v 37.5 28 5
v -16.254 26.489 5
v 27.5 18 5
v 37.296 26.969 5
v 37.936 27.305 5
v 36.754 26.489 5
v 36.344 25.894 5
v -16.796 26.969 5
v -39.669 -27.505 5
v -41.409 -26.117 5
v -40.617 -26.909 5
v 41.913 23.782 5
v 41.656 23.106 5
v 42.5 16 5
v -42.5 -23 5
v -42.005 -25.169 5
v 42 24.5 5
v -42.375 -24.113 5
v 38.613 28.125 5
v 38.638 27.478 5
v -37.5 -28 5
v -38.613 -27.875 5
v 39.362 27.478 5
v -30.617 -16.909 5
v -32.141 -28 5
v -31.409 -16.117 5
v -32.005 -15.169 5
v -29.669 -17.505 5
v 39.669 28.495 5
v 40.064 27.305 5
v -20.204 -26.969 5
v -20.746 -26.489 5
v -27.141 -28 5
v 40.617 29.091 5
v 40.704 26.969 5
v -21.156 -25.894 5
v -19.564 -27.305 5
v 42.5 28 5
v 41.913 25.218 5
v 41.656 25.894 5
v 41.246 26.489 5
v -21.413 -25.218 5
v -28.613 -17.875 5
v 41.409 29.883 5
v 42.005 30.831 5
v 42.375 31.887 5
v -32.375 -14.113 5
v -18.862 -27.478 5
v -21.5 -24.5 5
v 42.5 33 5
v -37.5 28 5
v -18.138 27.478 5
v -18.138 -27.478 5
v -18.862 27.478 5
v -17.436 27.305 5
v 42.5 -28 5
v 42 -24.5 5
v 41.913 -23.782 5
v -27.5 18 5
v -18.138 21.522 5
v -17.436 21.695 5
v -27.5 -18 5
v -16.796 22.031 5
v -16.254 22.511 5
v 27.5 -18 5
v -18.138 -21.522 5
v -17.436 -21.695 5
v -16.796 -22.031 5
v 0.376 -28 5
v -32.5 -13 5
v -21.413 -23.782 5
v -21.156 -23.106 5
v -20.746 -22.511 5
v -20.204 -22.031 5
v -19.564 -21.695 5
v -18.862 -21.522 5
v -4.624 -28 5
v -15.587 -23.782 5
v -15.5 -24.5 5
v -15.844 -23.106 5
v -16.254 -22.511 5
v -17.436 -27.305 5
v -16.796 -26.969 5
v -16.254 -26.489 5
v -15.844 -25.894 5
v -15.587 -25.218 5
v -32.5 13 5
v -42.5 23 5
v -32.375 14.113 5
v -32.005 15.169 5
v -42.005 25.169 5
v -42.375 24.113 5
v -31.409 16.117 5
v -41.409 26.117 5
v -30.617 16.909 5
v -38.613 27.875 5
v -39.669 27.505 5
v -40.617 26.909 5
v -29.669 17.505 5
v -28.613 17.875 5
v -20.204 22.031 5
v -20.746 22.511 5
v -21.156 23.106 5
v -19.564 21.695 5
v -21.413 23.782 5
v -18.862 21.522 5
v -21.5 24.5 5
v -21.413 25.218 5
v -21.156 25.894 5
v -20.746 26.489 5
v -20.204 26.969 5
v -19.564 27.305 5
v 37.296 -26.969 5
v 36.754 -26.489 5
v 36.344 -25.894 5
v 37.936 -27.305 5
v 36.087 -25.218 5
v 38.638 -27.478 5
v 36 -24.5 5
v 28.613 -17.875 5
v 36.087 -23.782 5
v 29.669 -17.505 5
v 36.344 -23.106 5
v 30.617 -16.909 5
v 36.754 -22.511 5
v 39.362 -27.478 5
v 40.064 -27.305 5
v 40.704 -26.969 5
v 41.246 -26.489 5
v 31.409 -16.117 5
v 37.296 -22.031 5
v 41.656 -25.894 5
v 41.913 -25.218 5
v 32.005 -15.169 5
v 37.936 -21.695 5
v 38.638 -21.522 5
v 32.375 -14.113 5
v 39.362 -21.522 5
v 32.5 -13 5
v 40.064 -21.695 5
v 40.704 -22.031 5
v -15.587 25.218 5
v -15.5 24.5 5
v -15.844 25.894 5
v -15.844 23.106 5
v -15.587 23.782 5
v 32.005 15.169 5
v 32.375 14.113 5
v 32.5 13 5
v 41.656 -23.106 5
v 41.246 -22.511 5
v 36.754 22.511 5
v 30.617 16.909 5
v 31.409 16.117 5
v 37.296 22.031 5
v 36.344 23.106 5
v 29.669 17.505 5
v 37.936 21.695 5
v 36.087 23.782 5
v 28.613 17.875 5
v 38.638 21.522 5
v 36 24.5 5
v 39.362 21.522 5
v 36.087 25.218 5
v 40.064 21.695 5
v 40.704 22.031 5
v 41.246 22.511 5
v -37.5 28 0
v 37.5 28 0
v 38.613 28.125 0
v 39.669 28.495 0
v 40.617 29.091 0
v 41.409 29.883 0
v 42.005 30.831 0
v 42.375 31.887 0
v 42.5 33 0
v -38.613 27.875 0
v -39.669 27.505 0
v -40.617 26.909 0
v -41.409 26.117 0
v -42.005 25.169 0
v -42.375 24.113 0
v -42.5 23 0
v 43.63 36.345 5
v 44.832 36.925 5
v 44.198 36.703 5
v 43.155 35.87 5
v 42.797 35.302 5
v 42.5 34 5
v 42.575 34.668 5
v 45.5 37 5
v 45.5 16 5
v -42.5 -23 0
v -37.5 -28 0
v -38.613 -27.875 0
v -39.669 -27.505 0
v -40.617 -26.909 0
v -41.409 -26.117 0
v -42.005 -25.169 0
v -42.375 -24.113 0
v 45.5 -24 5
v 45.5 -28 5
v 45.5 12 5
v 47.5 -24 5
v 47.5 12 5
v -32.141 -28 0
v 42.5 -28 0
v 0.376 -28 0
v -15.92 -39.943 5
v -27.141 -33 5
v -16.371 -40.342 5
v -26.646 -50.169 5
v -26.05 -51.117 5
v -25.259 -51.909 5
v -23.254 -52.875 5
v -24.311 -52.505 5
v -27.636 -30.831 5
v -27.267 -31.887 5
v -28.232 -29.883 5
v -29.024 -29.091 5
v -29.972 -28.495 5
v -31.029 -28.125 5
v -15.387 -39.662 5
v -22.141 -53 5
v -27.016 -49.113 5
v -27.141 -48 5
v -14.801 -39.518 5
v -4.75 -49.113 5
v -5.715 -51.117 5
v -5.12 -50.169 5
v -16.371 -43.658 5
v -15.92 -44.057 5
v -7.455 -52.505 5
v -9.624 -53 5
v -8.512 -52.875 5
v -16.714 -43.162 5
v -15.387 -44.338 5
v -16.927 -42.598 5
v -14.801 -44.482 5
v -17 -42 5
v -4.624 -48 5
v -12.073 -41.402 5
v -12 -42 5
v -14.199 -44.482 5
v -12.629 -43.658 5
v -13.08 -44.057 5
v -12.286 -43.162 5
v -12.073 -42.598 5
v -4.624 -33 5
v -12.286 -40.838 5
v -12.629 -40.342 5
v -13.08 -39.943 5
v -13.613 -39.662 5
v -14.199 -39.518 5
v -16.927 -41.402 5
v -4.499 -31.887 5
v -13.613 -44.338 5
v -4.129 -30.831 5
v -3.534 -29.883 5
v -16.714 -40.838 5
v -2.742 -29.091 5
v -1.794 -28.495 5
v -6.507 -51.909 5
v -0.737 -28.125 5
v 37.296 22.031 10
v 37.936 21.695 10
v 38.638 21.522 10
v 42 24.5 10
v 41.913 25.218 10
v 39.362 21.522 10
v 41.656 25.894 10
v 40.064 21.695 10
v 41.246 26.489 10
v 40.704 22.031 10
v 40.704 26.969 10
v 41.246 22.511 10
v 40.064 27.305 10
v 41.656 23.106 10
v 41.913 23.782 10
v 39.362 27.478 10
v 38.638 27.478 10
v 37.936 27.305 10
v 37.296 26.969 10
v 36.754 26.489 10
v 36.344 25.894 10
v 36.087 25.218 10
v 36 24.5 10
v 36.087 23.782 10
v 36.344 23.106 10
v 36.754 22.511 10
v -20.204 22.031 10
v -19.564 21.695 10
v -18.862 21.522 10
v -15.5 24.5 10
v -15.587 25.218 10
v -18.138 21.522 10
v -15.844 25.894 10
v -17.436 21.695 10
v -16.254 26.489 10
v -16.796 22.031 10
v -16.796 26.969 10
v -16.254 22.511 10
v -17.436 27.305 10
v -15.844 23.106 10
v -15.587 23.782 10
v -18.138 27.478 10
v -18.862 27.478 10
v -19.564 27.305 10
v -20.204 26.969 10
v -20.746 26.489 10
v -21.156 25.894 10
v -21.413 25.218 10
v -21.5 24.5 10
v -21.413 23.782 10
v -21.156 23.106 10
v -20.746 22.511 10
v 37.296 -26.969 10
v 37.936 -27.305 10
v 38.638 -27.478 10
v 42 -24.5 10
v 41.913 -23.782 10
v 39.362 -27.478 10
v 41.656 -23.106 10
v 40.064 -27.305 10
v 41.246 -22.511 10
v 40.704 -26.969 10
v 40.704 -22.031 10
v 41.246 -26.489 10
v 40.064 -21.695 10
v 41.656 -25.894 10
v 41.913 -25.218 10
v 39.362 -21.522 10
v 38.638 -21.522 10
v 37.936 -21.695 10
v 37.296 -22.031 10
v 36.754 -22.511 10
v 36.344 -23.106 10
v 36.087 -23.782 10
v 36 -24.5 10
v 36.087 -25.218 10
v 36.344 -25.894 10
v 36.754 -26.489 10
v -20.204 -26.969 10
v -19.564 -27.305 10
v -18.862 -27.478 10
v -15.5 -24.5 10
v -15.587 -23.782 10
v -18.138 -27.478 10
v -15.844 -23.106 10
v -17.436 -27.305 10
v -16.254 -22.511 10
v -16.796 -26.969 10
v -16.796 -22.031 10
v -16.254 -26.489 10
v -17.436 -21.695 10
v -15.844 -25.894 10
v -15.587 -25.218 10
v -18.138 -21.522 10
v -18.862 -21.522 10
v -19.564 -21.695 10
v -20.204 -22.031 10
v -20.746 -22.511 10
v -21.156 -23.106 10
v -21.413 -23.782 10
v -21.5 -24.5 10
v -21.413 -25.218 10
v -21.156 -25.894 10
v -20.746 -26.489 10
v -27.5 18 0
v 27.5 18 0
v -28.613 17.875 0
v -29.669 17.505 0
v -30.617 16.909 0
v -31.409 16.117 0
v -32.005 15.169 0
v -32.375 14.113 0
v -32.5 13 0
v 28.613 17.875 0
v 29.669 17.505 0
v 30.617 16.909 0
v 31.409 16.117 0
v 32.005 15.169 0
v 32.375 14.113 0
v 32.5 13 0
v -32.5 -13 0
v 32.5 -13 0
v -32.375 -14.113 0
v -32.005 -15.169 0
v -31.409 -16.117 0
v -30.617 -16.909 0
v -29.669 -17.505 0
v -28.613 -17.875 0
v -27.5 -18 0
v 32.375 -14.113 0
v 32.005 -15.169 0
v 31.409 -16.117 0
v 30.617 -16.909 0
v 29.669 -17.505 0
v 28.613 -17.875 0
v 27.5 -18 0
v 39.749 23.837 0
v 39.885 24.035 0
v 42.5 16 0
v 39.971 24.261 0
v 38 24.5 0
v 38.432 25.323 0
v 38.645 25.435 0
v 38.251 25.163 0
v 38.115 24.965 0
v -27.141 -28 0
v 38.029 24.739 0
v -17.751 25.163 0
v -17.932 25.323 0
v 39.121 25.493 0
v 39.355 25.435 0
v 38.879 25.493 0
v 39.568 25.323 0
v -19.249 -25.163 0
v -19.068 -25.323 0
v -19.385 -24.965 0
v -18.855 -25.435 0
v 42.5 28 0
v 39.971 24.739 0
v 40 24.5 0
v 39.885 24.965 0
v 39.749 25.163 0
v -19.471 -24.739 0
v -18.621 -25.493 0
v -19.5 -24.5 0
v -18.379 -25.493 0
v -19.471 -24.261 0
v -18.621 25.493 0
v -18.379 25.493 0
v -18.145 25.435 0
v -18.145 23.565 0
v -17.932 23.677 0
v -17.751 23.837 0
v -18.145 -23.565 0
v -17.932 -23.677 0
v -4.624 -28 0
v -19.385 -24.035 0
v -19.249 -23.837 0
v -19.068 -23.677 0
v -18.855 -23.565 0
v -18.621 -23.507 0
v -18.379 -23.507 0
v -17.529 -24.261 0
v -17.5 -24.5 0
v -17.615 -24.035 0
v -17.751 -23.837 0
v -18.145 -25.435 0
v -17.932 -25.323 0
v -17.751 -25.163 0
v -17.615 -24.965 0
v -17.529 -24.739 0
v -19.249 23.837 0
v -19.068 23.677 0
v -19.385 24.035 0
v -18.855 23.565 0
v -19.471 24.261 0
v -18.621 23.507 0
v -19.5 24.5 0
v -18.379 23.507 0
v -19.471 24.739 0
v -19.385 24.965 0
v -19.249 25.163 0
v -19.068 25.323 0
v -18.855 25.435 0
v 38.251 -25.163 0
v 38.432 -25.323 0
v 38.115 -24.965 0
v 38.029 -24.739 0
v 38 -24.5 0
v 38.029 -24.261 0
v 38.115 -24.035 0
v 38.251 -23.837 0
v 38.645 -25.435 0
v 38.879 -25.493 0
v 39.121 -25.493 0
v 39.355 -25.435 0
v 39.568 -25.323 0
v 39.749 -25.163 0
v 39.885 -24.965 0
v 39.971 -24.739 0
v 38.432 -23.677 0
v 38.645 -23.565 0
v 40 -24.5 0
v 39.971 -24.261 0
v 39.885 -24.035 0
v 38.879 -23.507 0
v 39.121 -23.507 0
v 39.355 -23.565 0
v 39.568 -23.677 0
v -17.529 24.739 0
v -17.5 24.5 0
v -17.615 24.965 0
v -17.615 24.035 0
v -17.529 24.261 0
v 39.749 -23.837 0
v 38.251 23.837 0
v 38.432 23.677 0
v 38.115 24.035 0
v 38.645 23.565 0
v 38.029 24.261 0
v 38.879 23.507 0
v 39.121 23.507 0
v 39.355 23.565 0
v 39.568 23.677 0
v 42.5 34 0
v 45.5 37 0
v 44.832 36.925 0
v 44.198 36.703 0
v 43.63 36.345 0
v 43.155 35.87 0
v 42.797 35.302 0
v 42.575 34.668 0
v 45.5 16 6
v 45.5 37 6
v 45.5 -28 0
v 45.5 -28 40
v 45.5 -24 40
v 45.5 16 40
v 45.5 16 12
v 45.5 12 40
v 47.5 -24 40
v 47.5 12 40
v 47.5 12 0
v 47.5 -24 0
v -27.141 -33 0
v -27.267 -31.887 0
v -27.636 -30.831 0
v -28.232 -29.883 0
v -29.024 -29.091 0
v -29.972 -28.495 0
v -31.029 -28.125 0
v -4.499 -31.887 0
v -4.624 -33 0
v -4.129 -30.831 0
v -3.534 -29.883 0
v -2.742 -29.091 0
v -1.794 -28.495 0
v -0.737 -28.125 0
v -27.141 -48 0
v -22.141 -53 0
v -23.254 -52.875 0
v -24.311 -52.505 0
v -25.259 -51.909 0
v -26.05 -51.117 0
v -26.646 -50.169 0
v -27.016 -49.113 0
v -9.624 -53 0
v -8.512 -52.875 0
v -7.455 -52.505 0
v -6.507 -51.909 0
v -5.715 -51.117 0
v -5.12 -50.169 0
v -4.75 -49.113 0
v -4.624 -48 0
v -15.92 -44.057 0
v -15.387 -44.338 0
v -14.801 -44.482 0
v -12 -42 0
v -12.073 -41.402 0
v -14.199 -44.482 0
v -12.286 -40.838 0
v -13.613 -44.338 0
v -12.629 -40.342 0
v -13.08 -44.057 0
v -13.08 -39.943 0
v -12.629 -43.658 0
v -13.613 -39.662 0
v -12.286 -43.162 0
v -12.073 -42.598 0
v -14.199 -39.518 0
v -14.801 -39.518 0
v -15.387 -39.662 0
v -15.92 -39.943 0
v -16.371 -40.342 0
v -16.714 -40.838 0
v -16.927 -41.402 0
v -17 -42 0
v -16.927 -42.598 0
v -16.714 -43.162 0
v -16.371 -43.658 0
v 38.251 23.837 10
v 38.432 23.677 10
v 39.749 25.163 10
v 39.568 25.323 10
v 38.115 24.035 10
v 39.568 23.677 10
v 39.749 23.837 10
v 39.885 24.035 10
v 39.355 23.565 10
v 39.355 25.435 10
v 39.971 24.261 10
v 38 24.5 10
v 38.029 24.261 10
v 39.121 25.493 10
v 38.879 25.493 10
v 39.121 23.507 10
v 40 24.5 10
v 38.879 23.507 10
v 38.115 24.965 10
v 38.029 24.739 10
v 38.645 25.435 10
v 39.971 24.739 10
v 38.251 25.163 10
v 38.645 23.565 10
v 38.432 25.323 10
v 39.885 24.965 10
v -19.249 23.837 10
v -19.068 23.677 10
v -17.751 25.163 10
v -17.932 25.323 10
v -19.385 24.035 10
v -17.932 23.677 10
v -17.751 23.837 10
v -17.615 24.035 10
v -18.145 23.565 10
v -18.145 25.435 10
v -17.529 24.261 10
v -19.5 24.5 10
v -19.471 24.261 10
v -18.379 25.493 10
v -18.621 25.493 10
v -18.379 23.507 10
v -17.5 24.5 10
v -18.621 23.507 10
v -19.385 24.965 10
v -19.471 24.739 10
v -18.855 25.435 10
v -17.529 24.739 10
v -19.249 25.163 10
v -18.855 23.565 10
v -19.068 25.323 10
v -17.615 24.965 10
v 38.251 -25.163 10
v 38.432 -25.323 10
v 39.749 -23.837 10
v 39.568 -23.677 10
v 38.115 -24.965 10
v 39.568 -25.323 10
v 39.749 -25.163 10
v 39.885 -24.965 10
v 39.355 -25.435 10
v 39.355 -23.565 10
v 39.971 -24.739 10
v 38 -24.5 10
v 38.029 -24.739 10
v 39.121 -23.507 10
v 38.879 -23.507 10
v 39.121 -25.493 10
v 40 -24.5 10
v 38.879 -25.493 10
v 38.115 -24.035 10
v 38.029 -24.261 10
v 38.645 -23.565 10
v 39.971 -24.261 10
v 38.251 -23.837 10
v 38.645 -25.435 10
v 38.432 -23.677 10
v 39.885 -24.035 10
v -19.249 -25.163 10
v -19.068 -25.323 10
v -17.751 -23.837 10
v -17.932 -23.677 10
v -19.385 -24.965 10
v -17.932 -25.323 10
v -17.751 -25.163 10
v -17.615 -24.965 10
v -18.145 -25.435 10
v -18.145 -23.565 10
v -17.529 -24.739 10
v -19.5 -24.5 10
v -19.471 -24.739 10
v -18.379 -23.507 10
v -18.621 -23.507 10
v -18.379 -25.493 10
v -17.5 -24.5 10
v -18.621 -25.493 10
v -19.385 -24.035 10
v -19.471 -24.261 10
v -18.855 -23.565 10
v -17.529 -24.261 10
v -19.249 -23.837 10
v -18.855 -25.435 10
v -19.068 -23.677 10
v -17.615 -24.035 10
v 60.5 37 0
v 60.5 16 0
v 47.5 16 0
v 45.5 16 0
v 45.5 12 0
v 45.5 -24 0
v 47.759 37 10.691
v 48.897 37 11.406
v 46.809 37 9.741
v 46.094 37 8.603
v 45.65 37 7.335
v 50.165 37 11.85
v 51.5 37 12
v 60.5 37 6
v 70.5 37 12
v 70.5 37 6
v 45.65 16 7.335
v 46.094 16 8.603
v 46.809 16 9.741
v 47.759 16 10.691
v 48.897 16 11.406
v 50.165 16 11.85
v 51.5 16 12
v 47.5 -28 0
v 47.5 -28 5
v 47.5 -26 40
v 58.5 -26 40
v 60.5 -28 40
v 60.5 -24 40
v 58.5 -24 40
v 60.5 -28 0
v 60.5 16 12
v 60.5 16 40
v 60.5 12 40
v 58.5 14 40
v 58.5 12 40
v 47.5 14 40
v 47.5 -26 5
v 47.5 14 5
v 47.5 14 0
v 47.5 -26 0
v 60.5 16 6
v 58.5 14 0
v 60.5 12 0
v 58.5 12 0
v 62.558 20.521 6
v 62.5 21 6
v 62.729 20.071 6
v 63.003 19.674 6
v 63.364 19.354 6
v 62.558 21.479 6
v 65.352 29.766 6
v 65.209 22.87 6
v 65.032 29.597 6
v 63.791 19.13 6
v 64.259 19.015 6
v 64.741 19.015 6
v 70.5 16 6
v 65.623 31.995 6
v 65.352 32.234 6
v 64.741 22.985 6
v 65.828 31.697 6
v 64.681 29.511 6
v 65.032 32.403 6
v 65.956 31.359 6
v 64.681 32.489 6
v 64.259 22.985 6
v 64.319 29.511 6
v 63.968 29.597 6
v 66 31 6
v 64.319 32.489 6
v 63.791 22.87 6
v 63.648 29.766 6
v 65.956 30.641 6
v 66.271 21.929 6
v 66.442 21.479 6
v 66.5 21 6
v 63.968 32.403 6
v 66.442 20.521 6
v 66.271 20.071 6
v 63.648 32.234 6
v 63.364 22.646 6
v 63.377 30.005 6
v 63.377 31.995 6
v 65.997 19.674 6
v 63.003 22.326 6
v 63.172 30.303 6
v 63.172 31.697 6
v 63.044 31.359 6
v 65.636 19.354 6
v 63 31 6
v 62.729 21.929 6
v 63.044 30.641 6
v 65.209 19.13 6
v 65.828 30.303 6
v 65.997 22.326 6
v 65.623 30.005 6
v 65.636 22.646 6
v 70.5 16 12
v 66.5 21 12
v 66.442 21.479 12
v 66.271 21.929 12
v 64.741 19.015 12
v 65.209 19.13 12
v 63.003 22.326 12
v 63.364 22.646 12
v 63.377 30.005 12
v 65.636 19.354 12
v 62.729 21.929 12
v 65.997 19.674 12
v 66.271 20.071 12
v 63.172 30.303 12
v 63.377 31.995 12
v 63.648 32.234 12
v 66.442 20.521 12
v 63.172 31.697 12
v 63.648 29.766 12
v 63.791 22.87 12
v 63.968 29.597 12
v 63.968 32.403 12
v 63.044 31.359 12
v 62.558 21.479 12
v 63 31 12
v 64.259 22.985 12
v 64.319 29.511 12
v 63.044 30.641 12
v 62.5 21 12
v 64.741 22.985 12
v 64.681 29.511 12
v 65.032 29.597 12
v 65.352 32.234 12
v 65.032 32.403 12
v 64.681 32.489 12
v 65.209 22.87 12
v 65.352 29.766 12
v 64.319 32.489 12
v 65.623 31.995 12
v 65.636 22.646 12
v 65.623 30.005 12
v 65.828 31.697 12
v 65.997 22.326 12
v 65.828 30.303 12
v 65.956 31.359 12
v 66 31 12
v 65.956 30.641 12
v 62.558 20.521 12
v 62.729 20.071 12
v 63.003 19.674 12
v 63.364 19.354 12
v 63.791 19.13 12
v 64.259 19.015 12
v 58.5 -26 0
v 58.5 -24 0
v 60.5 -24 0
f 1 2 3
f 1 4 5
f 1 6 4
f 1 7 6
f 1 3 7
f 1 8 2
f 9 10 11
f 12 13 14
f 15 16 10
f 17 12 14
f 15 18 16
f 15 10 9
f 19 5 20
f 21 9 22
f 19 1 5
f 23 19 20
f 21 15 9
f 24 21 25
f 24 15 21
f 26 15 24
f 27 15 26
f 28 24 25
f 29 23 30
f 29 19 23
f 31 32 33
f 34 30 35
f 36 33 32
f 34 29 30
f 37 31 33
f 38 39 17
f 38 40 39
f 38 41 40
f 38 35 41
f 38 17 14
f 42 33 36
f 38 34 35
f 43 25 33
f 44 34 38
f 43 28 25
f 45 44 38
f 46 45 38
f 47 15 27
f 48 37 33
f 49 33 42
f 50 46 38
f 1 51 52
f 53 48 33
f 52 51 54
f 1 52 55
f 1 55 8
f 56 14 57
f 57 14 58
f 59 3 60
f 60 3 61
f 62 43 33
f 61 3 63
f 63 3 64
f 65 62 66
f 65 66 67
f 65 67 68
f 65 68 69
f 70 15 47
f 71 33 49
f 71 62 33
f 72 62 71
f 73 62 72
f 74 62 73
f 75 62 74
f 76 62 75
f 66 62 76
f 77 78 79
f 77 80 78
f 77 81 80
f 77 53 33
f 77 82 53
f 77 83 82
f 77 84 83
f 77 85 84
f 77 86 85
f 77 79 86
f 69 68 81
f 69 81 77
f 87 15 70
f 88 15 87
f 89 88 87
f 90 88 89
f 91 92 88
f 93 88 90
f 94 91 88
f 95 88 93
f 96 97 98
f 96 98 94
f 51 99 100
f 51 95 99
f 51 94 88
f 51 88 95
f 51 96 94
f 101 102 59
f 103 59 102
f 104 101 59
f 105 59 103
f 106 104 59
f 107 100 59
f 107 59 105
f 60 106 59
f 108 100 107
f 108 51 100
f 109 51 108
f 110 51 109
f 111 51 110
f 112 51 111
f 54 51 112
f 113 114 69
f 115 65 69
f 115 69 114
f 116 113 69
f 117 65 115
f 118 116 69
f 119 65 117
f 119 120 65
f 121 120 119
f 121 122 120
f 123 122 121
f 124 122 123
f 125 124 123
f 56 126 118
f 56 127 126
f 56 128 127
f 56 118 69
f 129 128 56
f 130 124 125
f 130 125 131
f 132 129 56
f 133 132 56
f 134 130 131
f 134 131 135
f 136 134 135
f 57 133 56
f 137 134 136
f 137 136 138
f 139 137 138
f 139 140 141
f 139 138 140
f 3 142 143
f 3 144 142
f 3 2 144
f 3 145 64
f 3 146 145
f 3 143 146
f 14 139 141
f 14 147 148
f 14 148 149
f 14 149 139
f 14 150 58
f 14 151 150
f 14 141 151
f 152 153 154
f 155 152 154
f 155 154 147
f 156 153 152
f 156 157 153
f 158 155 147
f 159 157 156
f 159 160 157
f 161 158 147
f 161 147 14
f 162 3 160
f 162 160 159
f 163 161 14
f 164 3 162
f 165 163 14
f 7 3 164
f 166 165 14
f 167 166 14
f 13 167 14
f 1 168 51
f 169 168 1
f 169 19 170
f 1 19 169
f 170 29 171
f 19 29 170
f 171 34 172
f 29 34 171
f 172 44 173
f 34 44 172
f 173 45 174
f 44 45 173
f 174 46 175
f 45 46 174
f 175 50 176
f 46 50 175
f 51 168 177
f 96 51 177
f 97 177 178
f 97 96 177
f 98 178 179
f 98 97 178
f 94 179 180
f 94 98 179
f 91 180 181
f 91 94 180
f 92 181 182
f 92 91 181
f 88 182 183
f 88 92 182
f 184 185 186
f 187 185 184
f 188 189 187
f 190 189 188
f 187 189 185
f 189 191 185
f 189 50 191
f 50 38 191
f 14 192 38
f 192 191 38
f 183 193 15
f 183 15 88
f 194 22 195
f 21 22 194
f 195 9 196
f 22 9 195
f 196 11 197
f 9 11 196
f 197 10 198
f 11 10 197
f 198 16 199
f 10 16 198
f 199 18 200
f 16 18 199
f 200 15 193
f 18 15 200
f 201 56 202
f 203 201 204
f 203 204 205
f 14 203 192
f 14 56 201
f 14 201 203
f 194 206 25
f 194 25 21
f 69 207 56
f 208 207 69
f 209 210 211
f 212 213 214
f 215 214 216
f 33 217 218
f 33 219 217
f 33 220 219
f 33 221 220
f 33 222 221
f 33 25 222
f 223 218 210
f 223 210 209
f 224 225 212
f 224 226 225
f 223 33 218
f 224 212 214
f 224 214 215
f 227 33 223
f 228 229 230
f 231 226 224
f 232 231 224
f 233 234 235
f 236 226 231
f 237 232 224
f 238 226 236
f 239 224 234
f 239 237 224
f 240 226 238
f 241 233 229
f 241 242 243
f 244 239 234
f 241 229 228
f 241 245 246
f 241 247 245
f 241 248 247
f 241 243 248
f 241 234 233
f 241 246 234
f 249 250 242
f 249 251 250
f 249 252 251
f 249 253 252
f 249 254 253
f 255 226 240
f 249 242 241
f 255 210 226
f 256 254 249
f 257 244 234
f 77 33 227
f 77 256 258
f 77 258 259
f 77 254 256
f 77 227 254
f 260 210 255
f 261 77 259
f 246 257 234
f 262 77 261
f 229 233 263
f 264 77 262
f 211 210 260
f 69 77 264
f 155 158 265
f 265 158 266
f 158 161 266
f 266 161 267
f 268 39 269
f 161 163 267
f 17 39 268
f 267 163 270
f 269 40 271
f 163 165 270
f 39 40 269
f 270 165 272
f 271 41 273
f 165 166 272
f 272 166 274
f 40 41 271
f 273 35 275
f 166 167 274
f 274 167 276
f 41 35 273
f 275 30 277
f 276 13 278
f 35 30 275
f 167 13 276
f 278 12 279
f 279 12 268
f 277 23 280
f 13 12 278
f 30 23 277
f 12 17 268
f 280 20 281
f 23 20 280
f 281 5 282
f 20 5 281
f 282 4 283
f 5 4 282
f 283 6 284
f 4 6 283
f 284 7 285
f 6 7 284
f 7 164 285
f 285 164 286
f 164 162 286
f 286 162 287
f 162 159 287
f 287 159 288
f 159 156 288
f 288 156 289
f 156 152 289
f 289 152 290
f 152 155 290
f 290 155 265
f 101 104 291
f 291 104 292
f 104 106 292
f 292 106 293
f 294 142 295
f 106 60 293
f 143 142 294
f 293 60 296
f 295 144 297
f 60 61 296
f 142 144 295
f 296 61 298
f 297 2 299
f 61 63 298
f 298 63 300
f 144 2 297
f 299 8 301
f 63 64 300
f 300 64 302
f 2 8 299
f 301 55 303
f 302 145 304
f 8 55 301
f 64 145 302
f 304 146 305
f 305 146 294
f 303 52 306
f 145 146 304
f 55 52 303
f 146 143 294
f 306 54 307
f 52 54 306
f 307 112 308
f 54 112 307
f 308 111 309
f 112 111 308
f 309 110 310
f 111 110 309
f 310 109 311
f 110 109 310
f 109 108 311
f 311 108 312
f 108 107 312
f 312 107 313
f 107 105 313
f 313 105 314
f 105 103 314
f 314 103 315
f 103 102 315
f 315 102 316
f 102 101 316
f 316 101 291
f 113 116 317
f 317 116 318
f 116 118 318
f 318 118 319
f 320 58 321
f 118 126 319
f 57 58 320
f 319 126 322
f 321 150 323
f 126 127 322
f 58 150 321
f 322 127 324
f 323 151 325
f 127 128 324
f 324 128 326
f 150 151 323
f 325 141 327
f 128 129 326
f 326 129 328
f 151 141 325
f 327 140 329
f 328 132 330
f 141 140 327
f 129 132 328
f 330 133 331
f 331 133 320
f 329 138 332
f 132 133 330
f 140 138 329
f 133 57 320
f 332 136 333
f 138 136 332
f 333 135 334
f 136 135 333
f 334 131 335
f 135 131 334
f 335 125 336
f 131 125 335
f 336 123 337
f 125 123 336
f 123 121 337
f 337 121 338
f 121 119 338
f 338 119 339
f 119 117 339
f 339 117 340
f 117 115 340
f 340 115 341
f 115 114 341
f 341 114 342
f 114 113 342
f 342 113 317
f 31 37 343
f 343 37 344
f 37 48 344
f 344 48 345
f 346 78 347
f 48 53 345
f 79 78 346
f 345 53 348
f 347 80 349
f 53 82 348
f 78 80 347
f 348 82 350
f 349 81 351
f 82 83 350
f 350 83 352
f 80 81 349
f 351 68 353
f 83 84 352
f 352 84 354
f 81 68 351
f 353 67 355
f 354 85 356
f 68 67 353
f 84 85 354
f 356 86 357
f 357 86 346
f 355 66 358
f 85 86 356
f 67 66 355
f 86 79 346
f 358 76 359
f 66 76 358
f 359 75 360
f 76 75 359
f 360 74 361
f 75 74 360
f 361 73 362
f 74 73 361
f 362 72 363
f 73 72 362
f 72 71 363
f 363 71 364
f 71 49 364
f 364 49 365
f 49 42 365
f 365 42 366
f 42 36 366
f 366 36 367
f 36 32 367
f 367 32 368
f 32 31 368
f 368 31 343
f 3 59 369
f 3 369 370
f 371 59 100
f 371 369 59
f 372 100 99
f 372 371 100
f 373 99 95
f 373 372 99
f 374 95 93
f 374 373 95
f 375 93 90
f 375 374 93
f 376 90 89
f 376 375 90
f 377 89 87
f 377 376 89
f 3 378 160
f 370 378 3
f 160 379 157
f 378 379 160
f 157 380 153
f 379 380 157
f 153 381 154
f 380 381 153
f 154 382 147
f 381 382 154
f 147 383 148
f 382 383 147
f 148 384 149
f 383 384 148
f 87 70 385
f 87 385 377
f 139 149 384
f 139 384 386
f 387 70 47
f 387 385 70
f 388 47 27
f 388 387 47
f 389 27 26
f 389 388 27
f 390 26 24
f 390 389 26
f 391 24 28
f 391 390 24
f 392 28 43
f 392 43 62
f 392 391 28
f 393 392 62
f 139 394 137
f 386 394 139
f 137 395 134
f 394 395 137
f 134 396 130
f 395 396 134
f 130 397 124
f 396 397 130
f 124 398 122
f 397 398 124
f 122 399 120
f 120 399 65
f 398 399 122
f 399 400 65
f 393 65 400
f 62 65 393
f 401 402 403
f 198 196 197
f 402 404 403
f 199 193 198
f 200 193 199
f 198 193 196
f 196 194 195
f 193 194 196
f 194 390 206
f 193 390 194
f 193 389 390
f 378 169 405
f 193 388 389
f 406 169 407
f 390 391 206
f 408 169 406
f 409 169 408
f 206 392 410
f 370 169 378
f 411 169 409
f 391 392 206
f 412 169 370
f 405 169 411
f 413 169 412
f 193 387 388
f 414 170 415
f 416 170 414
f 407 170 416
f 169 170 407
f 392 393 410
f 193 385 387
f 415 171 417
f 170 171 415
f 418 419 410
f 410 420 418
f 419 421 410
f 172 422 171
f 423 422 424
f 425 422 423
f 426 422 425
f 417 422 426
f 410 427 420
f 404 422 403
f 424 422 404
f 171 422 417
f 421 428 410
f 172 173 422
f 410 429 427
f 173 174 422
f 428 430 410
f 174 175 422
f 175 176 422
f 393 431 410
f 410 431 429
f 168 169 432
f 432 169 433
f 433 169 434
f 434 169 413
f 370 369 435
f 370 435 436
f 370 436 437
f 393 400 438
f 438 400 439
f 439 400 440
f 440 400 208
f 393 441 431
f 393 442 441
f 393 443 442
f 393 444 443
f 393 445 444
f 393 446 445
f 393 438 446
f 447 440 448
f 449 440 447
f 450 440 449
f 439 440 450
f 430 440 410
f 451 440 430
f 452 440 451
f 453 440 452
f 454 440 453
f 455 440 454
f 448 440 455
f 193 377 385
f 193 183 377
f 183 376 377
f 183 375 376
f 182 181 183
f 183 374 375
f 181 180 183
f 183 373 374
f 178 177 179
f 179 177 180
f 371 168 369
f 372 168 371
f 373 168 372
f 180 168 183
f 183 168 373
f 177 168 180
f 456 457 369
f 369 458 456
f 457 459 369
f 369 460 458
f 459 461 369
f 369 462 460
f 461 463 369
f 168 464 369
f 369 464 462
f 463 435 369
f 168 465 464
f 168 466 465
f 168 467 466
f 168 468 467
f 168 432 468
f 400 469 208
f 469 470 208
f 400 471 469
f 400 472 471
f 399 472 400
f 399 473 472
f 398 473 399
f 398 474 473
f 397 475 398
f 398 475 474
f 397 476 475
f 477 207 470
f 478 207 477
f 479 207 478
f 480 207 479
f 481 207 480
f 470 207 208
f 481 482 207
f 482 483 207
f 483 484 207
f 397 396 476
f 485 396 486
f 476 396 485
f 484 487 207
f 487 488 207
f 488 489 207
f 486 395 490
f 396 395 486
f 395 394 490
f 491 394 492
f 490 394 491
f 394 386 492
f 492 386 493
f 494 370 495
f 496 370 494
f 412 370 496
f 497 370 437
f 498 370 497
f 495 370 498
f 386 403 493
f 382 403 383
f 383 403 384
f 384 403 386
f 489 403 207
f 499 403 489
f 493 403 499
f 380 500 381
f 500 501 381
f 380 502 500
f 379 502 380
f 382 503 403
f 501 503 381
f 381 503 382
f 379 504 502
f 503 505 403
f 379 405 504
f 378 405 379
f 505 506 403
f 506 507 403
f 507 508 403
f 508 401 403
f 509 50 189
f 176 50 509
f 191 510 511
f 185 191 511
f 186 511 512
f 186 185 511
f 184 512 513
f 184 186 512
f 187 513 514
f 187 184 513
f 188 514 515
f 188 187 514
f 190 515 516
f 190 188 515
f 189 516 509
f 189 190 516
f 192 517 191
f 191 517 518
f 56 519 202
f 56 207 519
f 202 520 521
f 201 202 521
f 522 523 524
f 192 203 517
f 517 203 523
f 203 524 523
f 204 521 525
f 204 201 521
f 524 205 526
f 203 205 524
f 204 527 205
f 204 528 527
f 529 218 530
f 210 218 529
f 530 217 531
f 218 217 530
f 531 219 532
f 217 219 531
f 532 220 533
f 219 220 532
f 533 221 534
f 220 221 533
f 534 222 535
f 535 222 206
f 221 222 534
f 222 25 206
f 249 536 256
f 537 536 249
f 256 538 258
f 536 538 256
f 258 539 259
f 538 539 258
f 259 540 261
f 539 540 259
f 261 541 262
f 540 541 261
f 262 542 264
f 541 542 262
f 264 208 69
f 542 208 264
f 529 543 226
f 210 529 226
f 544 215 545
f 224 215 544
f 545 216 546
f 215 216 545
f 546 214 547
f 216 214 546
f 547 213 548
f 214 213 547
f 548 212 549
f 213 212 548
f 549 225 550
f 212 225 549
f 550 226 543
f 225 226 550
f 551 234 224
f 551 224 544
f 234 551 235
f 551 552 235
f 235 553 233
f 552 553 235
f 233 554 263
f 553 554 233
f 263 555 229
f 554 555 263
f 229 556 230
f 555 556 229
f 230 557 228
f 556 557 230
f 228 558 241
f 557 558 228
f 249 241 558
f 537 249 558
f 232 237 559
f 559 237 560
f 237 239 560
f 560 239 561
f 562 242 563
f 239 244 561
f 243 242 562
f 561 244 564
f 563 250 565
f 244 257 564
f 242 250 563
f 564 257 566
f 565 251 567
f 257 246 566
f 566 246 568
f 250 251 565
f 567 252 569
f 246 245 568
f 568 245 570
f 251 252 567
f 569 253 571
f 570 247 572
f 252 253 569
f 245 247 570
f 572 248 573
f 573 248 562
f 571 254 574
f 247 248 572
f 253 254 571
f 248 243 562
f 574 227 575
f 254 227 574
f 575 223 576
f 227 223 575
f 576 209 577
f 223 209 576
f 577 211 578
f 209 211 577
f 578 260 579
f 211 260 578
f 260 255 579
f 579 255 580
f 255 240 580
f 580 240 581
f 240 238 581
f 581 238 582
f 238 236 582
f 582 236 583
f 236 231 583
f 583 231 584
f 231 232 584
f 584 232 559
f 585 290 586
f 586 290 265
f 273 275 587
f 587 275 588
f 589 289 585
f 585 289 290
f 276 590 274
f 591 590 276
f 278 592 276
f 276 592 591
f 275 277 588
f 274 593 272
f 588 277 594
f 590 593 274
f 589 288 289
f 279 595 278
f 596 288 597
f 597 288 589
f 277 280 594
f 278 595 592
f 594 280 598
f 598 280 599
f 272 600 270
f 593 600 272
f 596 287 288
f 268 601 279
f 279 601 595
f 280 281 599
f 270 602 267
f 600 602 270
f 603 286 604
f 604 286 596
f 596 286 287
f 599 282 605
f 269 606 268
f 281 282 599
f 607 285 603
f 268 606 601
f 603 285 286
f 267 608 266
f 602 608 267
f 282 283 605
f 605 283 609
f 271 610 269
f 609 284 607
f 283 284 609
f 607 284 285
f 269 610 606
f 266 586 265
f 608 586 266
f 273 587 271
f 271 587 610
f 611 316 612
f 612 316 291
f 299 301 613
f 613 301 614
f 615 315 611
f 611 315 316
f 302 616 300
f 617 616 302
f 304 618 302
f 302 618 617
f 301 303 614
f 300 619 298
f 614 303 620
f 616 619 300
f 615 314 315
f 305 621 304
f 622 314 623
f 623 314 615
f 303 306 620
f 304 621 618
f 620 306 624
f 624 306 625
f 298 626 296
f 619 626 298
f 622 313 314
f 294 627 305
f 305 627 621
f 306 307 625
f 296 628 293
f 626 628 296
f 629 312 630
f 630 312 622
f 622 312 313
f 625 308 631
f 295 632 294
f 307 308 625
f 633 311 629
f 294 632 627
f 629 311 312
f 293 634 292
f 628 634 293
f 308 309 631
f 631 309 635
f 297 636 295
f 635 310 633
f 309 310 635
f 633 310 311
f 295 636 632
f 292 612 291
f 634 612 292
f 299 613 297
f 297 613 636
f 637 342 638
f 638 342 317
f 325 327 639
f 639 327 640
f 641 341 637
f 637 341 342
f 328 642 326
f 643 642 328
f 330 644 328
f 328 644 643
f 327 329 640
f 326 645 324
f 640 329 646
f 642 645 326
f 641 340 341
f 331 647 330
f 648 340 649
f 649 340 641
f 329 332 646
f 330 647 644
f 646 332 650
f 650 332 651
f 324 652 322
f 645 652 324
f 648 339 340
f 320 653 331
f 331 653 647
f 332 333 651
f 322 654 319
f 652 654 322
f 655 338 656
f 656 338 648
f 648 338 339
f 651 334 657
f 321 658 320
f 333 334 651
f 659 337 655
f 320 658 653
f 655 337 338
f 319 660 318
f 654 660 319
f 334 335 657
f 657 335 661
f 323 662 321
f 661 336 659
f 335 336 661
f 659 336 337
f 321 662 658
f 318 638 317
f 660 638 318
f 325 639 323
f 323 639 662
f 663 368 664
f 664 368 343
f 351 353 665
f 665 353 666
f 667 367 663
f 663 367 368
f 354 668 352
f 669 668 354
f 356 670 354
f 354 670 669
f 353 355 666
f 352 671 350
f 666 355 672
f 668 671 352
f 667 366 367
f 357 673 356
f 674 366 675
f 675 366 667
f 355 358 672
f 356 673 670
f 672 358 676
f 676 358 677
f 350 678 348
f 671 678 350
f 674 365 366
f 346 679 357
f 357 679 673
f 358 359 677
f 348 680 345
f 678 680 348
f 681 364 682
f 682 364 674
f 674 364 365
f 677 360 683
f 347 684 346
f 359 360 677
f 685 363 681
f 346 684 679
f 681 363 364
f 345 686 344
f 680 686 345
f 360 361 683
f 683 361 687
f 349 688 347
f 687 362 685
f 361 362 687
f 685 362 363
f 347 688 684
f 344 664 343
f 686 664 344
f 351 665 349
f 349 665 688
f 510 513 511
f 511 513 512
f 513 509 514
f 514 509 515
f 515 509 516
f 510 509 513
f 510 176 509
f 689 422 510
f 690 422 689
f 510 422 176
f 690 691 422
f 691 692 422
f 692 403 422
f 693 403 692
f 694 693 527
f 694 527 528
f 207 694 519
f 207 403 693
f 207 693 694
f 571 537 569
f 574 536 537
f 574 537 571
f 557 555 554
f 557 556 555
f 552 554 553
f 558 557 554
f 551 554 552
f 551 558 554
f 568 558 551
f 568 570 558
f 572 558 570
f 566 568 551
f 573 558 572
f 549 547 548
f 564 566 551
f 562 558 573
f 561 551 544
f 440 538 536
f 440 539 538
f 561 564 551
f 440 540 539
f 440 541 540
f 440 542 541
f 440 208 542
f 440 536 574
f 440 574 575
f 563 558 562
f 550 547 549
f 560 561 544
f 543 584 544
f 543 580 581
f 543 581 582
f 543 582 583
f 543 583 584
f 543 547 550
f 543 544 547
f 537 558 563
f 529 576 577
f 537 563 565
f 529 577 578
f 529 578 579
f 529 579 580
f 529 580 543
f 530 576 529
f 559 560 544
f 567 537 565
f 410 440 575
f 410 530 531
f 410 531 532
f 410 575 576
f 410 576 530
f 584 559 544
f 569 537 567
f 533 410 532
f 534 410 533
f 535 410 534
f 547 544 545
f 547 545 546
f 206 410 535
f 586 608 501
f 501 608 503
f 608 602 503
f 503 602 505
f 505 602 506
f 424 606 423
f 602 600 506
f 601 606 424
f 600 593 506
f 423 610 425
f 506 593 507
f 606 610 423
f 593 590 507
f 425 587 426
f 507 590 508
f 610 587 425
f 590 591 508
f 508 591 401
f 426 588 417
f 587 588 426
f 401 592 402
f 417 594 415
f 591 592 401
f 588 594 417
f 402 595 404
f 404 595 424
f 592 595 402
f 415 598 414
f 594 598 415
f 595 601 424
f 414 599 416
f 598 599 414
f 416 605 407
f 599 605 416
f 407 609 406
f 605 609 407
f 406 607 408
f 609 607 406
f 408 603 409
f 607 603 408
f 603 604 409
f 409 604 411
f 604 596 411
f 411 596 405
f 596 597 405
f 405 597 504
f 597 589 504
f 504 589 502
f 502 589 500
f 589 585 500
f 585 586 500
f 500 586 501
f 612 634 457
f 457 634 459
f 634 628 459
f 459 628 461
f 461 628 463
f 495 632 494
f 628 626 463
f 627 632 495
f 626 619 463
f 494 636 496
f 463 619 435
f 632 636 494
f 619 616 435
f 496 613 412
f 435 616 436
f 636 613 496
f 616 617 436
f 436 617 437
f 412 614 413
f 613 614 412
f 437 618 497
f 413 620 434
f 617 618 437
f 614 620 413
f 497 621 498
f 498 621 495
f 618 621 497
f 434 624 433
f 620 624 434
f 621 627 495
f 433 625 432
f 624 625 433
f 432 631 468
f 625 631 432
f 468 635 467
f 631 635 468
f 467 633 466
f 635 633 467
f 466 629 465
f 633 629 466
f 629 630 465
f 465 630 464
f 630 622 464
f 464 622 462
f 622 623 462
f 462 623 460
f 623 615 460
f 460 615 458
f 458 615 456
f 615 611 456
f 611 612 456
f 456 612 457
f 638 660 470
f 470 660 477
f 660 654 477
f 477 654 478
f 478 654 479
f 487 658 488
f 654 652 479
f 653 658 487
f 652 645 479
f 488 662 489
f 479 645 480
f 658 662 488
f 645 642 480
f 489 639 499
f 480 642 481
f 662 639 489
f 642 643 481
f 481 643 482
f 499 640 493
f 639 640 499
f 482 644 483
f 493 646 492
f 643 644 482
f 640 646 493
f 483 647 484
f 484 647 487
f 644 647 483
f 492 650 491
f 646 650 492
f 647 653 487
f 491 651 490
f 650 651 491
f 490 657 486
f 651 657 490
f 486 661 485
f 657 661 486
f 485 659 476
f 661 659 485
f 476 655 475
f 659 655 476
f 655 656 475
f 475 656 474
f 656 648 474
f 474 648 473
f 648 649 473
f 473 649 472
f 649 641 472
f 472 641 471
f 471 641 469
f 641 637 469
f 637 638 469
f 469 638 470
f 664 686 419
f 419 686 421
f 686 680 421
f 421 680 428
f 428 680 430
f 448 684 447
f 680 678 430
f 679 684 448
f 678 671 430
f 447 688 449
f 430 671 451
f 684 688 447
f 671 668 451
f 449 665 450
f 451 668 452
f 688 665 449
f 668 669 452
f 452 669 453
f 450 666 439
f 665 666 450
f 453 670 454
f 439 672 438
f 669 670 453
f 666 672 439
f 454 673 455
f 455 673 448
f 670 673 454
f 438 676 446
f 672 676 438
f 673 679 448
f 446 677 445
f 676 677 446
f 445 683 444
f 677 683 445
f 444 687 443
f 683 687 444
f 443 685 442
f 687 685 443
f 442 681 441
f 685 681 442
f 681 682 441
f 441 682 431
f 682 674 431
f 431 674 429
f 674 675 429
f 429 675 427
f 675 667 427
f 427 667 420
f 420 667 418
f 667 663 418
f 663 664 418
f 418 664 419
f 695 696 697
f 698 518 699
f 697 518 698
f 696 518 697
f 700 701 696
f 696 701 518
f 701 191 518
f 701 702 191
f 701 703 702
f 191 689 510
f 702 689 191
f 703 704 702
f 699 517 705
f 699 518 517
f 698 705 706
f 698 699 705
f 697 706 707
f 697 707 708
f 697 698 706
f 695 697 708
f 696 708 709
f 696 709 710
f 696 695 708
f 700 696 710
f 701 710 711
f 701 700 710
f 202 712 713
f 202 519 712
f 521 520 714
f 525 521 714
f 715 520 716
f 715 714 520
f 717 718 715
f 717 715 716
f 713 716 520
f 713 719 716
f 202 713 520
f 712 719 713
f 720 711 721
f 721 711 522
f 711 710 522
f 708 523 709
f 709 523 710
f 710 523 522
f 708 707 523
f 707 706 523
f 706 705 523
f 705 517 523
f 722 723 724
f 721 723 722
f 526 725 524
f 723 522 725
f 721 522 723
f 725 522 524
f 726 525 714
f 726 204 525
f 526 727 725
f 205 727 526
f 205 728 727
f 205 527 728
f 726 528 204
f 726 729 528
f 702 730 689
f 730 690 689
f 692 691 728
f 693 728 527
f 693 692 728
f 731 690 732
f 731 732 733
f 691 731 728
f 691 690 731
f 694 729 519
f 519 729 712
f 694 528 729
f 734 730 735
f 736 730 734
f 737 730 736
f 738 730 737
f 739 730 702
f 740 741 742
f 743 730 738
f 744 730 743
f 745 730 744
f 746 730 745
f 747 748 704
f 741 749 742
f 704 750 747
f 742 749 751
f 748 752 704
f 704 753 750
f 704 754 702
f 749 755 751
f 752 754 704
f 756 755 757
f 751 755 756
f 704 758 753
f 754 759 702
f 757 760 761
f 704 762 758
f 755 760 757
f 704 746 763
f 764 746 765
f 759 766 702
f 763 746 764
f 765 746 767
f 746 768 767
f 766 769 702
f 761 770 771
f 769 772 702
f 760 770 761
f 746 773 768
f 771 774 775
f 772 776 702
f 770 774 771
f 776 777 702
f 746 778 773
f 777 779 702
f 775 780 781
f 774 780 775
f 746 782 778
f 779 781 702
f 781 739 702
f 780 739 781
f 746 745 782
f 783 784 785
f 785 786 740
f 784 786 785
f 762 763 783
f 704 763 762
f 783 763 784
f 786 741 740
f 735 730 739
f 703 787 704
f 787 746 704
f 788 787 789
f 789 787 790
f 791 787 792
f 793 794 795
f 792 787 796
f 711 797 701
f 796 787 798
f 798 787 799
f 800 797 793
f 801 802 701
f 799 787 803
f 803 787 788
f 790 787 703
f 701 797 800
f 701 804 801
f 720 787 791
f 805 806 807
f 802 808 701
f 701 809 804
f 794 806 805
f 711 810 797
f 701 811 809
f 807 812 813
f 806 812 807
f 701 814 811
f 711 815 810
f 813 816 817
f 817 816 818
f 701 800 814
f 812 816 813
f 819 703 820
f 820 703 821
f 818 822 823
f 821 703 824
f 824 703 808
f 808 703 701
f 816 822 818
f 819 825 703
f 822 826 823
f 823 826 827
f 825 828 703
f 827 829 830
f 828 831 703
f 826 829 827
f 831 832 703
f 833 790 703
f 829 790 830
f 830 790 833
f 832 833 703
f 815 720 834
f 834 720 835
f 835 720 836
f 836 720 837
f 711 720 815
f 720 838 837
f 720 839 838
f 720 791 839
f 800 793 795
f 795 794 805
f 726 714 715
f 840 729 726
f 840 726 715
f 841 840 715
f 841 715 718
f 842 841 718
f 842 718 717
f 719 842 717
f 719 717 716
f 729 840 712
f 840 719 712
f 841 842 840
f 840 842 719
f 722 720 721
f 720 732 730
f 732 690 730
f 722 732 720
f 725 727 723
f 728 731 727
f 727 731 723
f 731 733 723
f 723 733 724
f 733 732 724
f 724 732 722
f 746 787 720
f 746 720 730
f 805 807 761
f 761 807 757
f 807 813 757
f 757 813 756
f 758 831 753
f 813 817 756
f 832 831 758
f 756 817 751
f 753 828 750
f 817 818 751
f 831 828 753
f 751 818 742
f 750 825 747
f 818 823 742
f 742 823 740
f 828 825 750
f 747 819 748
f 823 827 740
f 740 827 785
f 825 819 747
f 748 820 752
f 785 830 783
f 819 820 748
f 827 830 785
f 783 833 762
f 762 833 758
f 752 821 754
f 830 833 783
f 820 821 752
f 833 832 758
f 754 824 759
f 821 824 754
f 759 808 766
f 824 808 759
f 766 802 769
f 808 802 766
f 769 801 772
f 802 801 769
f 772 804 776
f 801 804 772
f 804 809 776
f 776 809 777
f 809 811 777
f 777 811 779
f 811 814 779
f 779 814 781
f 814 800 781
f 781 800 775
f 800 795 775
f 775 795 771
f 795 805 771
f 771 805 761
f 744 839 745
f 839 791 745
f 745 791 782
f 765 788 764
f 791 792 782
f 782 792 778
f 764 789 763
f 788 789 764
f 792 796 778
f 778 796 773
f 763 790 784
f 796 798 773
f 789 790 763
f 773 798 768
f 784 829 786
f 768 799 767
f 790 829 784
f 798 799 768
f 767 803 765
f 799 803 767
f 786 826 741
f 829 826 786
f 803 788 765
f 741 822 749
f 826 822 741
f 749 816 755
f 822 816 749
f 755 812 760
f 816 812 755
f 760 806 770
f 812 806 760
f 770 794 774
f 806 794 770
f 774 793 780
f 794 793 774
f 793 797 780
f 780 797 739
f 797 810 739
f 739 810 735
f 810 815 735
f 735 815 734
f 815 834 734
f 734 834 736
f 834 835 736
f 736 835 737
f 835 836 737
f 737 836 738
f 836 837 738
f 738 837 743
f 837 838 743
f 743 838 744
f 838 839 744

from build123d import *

# Parameters (mm, degrees)
SKETCH_W        = 85
SKETCH_H        = 56
PAD_DEPTH       = 5
SKETCH001_W     = 65
SKETCH001_H     = 36
POCKET_DEPTH    = 5.001
SKETCH002_R     = 3
PAD001_DEPTH    = 5
SKETCH003_R     = 1
POCKET001_DEPTH = 10.001
SKETCH004_W     = 44
SKETCH004_H     = 5
PAD002_DEPTH    = 5
PAD003_DEPTH    = 40
PAD004_DEPTH    = 21
FILLET_R        = 6
FILLET001_R     = 3
SKETCH007_W     = 22.516809
SKETCH007_H     = 5
PAD005_DEPTH    = 25
FILLET002_R     = 5
FILLET003_R     = 5
SKETCH008_R     = 2.5
POCKET002_DEPTH = 5.001
SKETCH009_R     = 1.5
SKETCH009_R_2   = 2
POCKET003_DEPTH = 12.001


with BuildPart() as part:
    # Sketch → Pad (new body)
    with BuildSketch(Plane.XY):
        Rectangle(SKETCH_W, SKETCH_H)
    extrude(amount=PAD_DEPTH)

    # Sketch001 → Pocket (cut, through all)
    with BuildSketch(Plane.XY.offset(5)):
        Rectangle(SKETCH001_W, SKETCH001_H)
    extrude(amount=-POCKET_DEPTH, mode=Mode.SUBTRACT)

    # Sketch002 → Pad001 (new body)
    with BuildSketch(Plane.XY.offset(5)):
        with Locations((39, 24.5)):
            Circle(SKETCH002_R)
        with Locations((-18.5, 24.5)):
            Circle(SKETCH002_R)
        with Locations((-18.5, -24.5)):
            Circle(SKETCH002_R)
        with Locations((39, -24.5)):
            Circle(SKETCH002_R)
    extrude(amount=PAD001_DEPTH)

    # Sketch003 → Pocket001 (cut, through all)
    with BuildSketch(Plane.XY.offset(10)):
        with Locations((-18.5, 24.5)):
            Circle(SKETCH003_R)
        with Locations((-18.5, -24.5)):
            Circle(SKETCH003_R)
        with Locations((39, 24.5)):
            Circle(SKETCH003_R)
        with Locations((39, -24.5)):
            Circle(SKETCH003_R)
    extrude(amount=-POCKET001_DEPTH, mode=Mode.SUBTRACT)

    # Sketch004 → Pad002 (new body)
    with BuildSketch(Plane.YZ.offset(42.5)):
        with Locations((-6, 2.5)):
            Rectangle(SKETCH004_W, SKETCH004_H)
    extrude(amount=PAD002_DEPTH)

    # Sketch005 → Pad003 (new body)
    with BuildSketch(Plane(origin=(0, 0, 0), x_dir=(1, 0, 0), z_dir=(0, 0, -1))):
        Polygon((45.5, 28), (45.5, 24), (47.5, 24), (47.5, 26), (58.5, 26), (58.5, 24), (60.5, 24), (60.5, 28), align=None)
        Polygon((45.5, -16), (45.5, -12), (47.5, -12), (47.5, -14), (58.5, -14), (58.5, -12), (60.5, -12), (60.5, -16), align=None)
    extrude(amount=-PAD003_DEPTH)

    # Sketch006 → Pad004 (new body)
    with BuildSketch(Plane(origin=(0, 16, 0), x_dir=(-1, 0, 0), z_dir=(0, 1, 0))):
        Polygon((-42.5, 0), (-42.5, 5), (-45.5, 5), (-45.5, 12), (-70.5, 12), (-70.5, 6), (-60.5, 6), (-60.5, 0), align=None)
    extrude(amount=PAD004_DEPTH)

    # Fillet
    fillet_edges = [part.edges().sort_by_distance(p)[0] for p in [
        (45.5, 26.5, 12),
    ]]
    fillet(fillet_edges, radius=FILLET_R)

    # Fillet001
    fillet001_edges = [part.edges().sort_by_distance(p)[0] for p in [
        (42.5, 37, 2.5),
    ]]
    fillet(fillet001_edges, radius=FILLET001_R)

    # Sketch007 → Pad005 (new body)
    with BuildSketch(Plane.XZ.offset(28)):
        with Locations((-15.882882, 2.5)):
            Rectangle(SKETCH007_W, SKETCH007_H)
    extrude(amount=PAD005_DEPTH)

    # Fillet002
    fillet002_edges = [part.edges().sort_by_distance(p)[0] for p in [
        (32.5, 18, 2.5),
        (32.5, -18, 2.5),
        (-32.5, -18, 2.5),
        (-42.5, 28, 2.5),
        (-42.5, -28, 2.5),
        (-27.141287, -28, 2.5),
        (-27.141287, -53, 2.5),
        (-4.624478, -53, 2.5),
        (-4.624478, -28, 2.5),
        (-32.5, 18, 2.5),
    ]]
    fillet(fillet002_edges, radius=FILLET002_R)

    # Fillet003
    fillet003_edges = [part.edges().sort_by_distance(p)[0] for p in [
        (42.5, 28, 2.5),
    ]]
    fillet(fillet003_edges, radius=FILLET003_R)

    # Sketch008 → Pocket002 (cut, through all)
    with BuildSketch(Plane.XY.offset(5)):
        with Locations((-14.5, -42)):
            Circle(SKETCH008_R)
    extrude(amount=-POCKET002_DEPTH, mode=Mode.SUBTRACT)

    # Sketch009 → Pocket003 (cut, through all)
    with BuildSketch(Plane.XY.offset(12)):
        with Locations((64.5, 31)):
            Circle(SKETCH009_R)
        with Locations((64.5, 21)):
            Circle(SKETCH009_R_2)
    extrude(amount=-POCKET003_DEPTH, mode=Mode.SUBTRACT)


solid = part.part
